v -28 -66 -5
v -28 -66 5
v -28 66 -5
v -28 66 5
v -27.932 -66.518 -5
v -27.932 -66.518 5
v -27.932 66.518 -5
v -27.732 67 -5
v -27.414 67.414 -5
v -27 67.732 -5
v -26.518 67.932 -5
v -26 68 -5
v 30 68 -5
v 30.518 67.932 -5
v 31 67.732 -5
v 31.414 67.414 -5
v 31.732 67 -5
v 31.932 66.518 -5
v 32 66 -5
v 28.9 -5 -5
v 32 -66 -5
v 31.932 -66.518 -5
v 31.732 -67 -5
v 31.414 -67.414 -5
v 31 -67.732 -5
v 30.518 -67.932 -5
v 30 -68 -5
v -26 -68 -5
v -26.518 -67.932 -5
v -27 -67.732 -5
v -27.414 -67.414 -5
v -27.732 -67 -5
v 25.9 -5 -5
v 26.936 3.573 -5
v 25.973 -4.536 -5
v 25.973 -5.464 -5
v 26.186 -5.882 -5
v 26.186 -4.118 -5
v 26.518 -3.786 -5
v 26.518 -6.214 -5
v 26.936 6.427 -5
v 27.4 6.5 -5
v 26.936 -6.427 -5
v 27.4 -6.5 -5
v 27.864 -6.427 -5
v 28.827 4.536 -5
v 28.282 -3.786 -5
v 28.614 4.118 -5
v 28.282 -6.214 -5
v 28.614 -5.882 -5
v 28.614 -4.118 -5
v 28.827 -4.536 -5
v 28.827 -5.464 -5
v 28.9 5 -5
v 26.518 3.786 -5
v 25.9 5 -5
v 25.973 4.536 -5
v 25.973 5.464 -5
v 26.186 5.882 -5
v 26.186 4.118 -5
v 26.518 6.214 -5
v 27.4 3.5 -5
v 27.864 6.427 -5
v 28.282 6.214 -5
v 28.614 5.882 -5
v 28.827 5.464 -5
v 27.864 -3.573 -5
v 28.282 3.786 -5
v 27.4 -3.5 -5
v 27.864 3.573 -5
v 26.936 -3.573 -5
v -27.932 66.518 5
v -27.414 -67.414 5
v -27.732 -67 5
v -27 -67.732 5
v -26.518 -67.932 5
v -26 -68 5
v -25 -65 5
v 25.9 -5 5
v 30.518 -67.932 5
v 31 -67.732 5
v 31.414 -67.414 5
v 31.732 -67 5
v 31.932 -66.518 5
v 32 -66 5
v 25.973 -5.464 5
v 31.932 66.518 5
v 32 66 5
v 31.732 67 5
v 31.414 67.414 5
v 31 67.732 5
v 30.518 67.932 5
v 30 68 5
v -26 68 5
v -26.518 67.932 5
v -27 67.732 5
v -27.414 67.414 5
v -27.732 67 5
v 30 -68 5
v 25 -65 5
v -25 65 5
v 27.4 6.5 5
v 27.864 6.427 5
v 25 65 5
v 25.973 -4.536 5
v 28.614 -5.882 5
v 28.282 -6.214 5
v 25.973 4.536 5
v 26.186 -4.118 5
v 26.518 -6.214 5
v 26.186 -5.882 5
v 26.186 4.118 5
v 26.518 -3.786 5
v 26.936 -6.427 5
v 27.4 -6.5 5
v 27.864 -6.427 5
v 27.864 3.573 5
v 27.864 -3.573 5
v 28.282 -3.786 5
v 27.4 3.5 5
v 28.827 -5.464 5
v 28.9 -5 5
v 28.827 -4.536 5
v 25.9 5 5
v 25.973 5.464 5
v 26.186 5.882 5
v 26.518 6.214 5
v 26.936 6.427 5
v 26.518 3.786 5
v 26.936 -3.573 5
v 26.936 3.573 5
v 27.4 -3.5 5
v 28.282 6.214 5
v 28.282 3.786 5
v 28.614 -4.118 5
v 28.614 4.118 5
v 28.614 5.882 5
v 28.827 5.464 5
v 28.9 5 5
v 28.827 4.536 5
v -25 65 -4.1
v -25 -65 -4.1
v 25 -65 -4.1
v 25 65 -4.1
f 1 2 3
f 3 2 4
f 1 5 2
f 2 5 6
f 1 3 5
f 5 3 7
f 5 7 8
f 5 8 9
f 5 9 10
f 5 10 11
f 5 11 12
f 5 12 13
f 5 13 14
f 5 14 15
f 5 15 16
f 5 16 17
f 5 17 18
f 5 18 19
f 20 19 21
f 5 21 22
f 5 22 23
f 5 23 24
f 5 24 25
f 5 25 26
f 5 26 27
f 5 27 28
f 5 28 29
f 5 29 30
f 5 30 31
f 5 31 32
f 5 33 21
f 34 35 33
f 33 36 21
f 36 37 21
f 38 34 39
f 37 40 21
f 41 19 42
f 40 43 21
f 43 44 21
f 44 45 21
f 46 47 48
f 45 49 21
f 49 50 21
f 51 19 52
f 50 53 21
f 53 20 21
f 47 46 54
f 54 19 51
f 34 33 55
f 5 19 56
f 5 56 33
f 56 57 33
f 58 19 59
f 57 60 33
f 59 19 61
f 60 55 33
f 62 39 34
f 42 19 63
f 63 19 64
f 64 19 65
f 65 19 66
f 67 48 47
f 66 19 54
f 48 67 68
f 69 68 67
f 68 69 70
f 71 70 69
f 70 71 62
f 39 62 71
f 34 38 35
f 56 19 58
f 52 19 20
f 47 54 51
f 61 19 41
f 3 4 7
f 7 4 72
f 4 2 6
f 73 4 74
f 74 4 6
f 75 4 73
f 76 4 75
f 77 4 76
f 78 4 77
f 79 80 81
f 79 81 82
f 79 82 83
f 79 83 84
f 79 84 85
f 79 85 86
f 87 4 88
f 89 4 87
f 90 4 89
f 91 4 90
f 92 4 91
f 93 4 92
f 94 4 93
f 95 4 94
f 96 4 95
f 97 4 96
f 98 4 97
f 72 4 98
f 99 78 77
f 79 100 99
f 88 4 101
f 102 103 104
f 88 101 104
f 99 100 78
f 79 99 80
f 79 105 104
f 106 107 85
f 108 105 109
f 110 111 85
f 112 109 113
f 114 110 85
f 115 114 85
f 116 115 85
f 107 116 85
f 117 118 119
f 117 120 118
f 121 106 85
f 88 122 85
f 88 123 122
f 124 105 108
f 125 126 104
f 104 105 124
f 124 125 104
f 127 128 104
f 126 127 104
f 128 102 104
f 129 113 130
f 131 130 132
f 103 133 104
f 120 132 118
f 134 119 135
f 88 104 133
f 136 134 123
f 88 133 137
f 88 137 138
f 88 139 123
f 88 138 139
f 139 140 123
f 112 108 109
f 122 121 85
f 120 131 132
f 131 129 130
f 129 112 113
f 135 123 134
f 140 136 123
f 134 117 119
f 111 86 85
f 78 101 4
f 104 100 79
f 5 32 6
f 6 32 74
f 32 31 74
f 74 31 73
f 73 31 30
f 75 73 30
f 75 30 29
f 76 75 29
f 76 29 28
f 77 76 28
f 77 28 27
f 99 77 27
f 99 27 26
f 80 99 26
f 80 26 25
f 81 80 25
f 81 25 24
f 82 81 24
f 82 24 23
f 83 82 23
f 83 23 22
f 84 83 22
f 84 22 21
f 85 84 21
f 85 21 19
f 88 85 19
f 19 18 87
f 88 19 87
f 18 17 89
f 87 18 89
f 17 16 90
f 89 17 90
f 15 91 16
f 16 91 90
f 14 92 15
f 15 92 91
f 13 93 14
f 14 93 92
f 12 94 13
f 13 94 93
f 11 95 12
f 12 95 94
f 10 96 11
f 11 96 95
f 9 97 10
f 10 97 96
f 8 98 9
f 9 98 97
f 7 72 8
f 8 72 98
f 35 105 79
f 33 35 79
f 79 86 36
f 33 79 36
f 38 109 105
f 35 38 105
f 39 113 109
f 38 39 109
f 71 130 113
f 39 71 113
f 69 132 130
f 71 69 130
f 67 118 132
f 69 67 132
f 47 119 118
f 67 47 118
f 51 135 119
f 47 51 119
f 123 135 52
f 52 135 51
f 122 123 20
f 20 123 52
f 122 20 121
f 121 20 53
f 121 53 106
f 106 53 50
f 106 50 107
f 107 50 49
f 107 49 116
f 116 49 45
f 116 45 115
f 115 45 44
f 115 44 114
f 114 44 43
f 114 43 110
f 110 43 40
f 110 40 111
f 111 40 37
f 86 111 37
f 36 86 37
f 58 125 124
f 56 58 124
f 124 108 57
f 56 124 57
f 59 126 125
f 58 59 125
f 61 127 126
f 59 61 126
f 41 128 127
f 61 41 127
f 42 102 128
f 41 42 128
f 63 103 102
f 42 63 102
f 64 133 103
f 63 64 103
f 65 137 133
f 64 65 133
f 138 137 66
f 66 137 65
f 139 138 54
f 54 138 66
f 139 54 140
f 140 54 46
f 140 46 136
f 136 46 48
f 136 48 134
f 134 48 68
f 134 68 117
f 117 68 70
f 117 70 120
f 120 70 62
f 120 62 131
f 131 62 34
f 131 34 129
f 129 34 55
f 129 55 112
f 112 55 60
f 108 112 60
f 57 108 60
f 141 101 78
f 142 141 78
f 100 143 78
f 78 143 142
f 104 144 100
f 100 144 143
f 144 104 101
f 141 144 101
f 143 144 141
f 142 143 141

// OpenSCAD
// file: obiscad/bcube.scad
//------------------------------------------------------------------------------
//  Bevel edge cube.
//  (c) Juan Gonzalez-Gomez (Obijuan), Sep-2012
//------------------------------------------------------------------------------

//----------------- IMPLEMENTATION USING THE MINKOWSKI OPERATOR ----------------

//------------------------------------------------------------------------------
//-- Bevel Cube main function
//-- Parameters:
//--   * Size:  Cube size
//--   * cr : Corner radius (if cr==0, a standar cube is built)
//--   * cres:  Corner resolution (in points). cres=0 means flat corners
//------------------------------------------------------------------------------
module bcube(size,cr=0,cres=0)
{
  //-- Internal cube size
  bsize = size - 2*[cr,cr,0];

  //-- Get the (x,y) coorner coordinates in the 1st cuadrant
  x = bsize[0]/2;
  y = bsize[1]/2;

  //-- A corner radius of 0 means a standar cube!
  if (cr==0)
    cube(bsize,center=true);
  else {

      
      //-- The height of minkowski object is double. So
      //-- we sould scale by 0.5
      scale([1,1,0.5])

      //-- This translation is for centering the minkowski objet
      translate([-x, -y,0])

      //-- Built the  beveled cube with minkowski
      minkowski() {

        //-- Internal cube
        cube(bsize,center=true);

        //-- Cylinder in the corner (1st cuadrant)
        translate([x,y, 0])
          cylinder(r=cr, h=bsize[2],center=true, $fn=4*(cres+1));
      }
  }

}


//-- Examples of use of the bcube() module

//-- Standar cube
translate([-15,15,0])
bcube([20,20,10]);

//-- Beveled cube (0 point resolution)
translate([15,15,0])
  bcube([20,20,10],cr=4);

//-- Beveled cube (1 point resolution)
translate([-15,-15,0])
  bcube([20,20,10],cr=4, cres=1);

//-- Beveled cube (4 points resolution)
translate([15,-15,0])
  bcube([20,20,10],cr=4, cres=4);
// main file
// Tray for the PrintrCamBot by Carlosgs (http://carlosgs.es)

use <obiscad/bcube.scad>

tray_w = 130; // [mm]
tray_h = 50; // [mm]
tray_thickness = 7;
tray_floor_thickness = 0.9;

holder_w = 10;

front_truncation = tray_thickness-3;
side_truncation = tray_thickness-3;

screwOffset = 2.4;

screwDistFromOrig = tray_h/2+screwOffset;
screwSupport_h = 5;

screwDist = 10;

screwDiam = 3;

module screws() {
	translate([0,screwDist/2,0]) {
		cylinder(r=screwDiam/2,h=100,center=true,$fn=20);
	}
	translate([0,-screwDist/2,0]) {
		cylinder(r=screwDiam/2,h=100,center=true,$fn=20);
	}
}

difference() {
	translate([front_truncation/2,0,0])
		bcube([tray_h+tray_thickness*2-front_truncation,tray_w+tray_thickness*2-side_truncation*2,holder_w],cr=2,cres=5);
	translate([0,0,tray_floor_thickness])
		cube([tray_h,tray_w,holder_w],center=true);
	translate([screwDistFromOrig,0,0]) screws();
}
